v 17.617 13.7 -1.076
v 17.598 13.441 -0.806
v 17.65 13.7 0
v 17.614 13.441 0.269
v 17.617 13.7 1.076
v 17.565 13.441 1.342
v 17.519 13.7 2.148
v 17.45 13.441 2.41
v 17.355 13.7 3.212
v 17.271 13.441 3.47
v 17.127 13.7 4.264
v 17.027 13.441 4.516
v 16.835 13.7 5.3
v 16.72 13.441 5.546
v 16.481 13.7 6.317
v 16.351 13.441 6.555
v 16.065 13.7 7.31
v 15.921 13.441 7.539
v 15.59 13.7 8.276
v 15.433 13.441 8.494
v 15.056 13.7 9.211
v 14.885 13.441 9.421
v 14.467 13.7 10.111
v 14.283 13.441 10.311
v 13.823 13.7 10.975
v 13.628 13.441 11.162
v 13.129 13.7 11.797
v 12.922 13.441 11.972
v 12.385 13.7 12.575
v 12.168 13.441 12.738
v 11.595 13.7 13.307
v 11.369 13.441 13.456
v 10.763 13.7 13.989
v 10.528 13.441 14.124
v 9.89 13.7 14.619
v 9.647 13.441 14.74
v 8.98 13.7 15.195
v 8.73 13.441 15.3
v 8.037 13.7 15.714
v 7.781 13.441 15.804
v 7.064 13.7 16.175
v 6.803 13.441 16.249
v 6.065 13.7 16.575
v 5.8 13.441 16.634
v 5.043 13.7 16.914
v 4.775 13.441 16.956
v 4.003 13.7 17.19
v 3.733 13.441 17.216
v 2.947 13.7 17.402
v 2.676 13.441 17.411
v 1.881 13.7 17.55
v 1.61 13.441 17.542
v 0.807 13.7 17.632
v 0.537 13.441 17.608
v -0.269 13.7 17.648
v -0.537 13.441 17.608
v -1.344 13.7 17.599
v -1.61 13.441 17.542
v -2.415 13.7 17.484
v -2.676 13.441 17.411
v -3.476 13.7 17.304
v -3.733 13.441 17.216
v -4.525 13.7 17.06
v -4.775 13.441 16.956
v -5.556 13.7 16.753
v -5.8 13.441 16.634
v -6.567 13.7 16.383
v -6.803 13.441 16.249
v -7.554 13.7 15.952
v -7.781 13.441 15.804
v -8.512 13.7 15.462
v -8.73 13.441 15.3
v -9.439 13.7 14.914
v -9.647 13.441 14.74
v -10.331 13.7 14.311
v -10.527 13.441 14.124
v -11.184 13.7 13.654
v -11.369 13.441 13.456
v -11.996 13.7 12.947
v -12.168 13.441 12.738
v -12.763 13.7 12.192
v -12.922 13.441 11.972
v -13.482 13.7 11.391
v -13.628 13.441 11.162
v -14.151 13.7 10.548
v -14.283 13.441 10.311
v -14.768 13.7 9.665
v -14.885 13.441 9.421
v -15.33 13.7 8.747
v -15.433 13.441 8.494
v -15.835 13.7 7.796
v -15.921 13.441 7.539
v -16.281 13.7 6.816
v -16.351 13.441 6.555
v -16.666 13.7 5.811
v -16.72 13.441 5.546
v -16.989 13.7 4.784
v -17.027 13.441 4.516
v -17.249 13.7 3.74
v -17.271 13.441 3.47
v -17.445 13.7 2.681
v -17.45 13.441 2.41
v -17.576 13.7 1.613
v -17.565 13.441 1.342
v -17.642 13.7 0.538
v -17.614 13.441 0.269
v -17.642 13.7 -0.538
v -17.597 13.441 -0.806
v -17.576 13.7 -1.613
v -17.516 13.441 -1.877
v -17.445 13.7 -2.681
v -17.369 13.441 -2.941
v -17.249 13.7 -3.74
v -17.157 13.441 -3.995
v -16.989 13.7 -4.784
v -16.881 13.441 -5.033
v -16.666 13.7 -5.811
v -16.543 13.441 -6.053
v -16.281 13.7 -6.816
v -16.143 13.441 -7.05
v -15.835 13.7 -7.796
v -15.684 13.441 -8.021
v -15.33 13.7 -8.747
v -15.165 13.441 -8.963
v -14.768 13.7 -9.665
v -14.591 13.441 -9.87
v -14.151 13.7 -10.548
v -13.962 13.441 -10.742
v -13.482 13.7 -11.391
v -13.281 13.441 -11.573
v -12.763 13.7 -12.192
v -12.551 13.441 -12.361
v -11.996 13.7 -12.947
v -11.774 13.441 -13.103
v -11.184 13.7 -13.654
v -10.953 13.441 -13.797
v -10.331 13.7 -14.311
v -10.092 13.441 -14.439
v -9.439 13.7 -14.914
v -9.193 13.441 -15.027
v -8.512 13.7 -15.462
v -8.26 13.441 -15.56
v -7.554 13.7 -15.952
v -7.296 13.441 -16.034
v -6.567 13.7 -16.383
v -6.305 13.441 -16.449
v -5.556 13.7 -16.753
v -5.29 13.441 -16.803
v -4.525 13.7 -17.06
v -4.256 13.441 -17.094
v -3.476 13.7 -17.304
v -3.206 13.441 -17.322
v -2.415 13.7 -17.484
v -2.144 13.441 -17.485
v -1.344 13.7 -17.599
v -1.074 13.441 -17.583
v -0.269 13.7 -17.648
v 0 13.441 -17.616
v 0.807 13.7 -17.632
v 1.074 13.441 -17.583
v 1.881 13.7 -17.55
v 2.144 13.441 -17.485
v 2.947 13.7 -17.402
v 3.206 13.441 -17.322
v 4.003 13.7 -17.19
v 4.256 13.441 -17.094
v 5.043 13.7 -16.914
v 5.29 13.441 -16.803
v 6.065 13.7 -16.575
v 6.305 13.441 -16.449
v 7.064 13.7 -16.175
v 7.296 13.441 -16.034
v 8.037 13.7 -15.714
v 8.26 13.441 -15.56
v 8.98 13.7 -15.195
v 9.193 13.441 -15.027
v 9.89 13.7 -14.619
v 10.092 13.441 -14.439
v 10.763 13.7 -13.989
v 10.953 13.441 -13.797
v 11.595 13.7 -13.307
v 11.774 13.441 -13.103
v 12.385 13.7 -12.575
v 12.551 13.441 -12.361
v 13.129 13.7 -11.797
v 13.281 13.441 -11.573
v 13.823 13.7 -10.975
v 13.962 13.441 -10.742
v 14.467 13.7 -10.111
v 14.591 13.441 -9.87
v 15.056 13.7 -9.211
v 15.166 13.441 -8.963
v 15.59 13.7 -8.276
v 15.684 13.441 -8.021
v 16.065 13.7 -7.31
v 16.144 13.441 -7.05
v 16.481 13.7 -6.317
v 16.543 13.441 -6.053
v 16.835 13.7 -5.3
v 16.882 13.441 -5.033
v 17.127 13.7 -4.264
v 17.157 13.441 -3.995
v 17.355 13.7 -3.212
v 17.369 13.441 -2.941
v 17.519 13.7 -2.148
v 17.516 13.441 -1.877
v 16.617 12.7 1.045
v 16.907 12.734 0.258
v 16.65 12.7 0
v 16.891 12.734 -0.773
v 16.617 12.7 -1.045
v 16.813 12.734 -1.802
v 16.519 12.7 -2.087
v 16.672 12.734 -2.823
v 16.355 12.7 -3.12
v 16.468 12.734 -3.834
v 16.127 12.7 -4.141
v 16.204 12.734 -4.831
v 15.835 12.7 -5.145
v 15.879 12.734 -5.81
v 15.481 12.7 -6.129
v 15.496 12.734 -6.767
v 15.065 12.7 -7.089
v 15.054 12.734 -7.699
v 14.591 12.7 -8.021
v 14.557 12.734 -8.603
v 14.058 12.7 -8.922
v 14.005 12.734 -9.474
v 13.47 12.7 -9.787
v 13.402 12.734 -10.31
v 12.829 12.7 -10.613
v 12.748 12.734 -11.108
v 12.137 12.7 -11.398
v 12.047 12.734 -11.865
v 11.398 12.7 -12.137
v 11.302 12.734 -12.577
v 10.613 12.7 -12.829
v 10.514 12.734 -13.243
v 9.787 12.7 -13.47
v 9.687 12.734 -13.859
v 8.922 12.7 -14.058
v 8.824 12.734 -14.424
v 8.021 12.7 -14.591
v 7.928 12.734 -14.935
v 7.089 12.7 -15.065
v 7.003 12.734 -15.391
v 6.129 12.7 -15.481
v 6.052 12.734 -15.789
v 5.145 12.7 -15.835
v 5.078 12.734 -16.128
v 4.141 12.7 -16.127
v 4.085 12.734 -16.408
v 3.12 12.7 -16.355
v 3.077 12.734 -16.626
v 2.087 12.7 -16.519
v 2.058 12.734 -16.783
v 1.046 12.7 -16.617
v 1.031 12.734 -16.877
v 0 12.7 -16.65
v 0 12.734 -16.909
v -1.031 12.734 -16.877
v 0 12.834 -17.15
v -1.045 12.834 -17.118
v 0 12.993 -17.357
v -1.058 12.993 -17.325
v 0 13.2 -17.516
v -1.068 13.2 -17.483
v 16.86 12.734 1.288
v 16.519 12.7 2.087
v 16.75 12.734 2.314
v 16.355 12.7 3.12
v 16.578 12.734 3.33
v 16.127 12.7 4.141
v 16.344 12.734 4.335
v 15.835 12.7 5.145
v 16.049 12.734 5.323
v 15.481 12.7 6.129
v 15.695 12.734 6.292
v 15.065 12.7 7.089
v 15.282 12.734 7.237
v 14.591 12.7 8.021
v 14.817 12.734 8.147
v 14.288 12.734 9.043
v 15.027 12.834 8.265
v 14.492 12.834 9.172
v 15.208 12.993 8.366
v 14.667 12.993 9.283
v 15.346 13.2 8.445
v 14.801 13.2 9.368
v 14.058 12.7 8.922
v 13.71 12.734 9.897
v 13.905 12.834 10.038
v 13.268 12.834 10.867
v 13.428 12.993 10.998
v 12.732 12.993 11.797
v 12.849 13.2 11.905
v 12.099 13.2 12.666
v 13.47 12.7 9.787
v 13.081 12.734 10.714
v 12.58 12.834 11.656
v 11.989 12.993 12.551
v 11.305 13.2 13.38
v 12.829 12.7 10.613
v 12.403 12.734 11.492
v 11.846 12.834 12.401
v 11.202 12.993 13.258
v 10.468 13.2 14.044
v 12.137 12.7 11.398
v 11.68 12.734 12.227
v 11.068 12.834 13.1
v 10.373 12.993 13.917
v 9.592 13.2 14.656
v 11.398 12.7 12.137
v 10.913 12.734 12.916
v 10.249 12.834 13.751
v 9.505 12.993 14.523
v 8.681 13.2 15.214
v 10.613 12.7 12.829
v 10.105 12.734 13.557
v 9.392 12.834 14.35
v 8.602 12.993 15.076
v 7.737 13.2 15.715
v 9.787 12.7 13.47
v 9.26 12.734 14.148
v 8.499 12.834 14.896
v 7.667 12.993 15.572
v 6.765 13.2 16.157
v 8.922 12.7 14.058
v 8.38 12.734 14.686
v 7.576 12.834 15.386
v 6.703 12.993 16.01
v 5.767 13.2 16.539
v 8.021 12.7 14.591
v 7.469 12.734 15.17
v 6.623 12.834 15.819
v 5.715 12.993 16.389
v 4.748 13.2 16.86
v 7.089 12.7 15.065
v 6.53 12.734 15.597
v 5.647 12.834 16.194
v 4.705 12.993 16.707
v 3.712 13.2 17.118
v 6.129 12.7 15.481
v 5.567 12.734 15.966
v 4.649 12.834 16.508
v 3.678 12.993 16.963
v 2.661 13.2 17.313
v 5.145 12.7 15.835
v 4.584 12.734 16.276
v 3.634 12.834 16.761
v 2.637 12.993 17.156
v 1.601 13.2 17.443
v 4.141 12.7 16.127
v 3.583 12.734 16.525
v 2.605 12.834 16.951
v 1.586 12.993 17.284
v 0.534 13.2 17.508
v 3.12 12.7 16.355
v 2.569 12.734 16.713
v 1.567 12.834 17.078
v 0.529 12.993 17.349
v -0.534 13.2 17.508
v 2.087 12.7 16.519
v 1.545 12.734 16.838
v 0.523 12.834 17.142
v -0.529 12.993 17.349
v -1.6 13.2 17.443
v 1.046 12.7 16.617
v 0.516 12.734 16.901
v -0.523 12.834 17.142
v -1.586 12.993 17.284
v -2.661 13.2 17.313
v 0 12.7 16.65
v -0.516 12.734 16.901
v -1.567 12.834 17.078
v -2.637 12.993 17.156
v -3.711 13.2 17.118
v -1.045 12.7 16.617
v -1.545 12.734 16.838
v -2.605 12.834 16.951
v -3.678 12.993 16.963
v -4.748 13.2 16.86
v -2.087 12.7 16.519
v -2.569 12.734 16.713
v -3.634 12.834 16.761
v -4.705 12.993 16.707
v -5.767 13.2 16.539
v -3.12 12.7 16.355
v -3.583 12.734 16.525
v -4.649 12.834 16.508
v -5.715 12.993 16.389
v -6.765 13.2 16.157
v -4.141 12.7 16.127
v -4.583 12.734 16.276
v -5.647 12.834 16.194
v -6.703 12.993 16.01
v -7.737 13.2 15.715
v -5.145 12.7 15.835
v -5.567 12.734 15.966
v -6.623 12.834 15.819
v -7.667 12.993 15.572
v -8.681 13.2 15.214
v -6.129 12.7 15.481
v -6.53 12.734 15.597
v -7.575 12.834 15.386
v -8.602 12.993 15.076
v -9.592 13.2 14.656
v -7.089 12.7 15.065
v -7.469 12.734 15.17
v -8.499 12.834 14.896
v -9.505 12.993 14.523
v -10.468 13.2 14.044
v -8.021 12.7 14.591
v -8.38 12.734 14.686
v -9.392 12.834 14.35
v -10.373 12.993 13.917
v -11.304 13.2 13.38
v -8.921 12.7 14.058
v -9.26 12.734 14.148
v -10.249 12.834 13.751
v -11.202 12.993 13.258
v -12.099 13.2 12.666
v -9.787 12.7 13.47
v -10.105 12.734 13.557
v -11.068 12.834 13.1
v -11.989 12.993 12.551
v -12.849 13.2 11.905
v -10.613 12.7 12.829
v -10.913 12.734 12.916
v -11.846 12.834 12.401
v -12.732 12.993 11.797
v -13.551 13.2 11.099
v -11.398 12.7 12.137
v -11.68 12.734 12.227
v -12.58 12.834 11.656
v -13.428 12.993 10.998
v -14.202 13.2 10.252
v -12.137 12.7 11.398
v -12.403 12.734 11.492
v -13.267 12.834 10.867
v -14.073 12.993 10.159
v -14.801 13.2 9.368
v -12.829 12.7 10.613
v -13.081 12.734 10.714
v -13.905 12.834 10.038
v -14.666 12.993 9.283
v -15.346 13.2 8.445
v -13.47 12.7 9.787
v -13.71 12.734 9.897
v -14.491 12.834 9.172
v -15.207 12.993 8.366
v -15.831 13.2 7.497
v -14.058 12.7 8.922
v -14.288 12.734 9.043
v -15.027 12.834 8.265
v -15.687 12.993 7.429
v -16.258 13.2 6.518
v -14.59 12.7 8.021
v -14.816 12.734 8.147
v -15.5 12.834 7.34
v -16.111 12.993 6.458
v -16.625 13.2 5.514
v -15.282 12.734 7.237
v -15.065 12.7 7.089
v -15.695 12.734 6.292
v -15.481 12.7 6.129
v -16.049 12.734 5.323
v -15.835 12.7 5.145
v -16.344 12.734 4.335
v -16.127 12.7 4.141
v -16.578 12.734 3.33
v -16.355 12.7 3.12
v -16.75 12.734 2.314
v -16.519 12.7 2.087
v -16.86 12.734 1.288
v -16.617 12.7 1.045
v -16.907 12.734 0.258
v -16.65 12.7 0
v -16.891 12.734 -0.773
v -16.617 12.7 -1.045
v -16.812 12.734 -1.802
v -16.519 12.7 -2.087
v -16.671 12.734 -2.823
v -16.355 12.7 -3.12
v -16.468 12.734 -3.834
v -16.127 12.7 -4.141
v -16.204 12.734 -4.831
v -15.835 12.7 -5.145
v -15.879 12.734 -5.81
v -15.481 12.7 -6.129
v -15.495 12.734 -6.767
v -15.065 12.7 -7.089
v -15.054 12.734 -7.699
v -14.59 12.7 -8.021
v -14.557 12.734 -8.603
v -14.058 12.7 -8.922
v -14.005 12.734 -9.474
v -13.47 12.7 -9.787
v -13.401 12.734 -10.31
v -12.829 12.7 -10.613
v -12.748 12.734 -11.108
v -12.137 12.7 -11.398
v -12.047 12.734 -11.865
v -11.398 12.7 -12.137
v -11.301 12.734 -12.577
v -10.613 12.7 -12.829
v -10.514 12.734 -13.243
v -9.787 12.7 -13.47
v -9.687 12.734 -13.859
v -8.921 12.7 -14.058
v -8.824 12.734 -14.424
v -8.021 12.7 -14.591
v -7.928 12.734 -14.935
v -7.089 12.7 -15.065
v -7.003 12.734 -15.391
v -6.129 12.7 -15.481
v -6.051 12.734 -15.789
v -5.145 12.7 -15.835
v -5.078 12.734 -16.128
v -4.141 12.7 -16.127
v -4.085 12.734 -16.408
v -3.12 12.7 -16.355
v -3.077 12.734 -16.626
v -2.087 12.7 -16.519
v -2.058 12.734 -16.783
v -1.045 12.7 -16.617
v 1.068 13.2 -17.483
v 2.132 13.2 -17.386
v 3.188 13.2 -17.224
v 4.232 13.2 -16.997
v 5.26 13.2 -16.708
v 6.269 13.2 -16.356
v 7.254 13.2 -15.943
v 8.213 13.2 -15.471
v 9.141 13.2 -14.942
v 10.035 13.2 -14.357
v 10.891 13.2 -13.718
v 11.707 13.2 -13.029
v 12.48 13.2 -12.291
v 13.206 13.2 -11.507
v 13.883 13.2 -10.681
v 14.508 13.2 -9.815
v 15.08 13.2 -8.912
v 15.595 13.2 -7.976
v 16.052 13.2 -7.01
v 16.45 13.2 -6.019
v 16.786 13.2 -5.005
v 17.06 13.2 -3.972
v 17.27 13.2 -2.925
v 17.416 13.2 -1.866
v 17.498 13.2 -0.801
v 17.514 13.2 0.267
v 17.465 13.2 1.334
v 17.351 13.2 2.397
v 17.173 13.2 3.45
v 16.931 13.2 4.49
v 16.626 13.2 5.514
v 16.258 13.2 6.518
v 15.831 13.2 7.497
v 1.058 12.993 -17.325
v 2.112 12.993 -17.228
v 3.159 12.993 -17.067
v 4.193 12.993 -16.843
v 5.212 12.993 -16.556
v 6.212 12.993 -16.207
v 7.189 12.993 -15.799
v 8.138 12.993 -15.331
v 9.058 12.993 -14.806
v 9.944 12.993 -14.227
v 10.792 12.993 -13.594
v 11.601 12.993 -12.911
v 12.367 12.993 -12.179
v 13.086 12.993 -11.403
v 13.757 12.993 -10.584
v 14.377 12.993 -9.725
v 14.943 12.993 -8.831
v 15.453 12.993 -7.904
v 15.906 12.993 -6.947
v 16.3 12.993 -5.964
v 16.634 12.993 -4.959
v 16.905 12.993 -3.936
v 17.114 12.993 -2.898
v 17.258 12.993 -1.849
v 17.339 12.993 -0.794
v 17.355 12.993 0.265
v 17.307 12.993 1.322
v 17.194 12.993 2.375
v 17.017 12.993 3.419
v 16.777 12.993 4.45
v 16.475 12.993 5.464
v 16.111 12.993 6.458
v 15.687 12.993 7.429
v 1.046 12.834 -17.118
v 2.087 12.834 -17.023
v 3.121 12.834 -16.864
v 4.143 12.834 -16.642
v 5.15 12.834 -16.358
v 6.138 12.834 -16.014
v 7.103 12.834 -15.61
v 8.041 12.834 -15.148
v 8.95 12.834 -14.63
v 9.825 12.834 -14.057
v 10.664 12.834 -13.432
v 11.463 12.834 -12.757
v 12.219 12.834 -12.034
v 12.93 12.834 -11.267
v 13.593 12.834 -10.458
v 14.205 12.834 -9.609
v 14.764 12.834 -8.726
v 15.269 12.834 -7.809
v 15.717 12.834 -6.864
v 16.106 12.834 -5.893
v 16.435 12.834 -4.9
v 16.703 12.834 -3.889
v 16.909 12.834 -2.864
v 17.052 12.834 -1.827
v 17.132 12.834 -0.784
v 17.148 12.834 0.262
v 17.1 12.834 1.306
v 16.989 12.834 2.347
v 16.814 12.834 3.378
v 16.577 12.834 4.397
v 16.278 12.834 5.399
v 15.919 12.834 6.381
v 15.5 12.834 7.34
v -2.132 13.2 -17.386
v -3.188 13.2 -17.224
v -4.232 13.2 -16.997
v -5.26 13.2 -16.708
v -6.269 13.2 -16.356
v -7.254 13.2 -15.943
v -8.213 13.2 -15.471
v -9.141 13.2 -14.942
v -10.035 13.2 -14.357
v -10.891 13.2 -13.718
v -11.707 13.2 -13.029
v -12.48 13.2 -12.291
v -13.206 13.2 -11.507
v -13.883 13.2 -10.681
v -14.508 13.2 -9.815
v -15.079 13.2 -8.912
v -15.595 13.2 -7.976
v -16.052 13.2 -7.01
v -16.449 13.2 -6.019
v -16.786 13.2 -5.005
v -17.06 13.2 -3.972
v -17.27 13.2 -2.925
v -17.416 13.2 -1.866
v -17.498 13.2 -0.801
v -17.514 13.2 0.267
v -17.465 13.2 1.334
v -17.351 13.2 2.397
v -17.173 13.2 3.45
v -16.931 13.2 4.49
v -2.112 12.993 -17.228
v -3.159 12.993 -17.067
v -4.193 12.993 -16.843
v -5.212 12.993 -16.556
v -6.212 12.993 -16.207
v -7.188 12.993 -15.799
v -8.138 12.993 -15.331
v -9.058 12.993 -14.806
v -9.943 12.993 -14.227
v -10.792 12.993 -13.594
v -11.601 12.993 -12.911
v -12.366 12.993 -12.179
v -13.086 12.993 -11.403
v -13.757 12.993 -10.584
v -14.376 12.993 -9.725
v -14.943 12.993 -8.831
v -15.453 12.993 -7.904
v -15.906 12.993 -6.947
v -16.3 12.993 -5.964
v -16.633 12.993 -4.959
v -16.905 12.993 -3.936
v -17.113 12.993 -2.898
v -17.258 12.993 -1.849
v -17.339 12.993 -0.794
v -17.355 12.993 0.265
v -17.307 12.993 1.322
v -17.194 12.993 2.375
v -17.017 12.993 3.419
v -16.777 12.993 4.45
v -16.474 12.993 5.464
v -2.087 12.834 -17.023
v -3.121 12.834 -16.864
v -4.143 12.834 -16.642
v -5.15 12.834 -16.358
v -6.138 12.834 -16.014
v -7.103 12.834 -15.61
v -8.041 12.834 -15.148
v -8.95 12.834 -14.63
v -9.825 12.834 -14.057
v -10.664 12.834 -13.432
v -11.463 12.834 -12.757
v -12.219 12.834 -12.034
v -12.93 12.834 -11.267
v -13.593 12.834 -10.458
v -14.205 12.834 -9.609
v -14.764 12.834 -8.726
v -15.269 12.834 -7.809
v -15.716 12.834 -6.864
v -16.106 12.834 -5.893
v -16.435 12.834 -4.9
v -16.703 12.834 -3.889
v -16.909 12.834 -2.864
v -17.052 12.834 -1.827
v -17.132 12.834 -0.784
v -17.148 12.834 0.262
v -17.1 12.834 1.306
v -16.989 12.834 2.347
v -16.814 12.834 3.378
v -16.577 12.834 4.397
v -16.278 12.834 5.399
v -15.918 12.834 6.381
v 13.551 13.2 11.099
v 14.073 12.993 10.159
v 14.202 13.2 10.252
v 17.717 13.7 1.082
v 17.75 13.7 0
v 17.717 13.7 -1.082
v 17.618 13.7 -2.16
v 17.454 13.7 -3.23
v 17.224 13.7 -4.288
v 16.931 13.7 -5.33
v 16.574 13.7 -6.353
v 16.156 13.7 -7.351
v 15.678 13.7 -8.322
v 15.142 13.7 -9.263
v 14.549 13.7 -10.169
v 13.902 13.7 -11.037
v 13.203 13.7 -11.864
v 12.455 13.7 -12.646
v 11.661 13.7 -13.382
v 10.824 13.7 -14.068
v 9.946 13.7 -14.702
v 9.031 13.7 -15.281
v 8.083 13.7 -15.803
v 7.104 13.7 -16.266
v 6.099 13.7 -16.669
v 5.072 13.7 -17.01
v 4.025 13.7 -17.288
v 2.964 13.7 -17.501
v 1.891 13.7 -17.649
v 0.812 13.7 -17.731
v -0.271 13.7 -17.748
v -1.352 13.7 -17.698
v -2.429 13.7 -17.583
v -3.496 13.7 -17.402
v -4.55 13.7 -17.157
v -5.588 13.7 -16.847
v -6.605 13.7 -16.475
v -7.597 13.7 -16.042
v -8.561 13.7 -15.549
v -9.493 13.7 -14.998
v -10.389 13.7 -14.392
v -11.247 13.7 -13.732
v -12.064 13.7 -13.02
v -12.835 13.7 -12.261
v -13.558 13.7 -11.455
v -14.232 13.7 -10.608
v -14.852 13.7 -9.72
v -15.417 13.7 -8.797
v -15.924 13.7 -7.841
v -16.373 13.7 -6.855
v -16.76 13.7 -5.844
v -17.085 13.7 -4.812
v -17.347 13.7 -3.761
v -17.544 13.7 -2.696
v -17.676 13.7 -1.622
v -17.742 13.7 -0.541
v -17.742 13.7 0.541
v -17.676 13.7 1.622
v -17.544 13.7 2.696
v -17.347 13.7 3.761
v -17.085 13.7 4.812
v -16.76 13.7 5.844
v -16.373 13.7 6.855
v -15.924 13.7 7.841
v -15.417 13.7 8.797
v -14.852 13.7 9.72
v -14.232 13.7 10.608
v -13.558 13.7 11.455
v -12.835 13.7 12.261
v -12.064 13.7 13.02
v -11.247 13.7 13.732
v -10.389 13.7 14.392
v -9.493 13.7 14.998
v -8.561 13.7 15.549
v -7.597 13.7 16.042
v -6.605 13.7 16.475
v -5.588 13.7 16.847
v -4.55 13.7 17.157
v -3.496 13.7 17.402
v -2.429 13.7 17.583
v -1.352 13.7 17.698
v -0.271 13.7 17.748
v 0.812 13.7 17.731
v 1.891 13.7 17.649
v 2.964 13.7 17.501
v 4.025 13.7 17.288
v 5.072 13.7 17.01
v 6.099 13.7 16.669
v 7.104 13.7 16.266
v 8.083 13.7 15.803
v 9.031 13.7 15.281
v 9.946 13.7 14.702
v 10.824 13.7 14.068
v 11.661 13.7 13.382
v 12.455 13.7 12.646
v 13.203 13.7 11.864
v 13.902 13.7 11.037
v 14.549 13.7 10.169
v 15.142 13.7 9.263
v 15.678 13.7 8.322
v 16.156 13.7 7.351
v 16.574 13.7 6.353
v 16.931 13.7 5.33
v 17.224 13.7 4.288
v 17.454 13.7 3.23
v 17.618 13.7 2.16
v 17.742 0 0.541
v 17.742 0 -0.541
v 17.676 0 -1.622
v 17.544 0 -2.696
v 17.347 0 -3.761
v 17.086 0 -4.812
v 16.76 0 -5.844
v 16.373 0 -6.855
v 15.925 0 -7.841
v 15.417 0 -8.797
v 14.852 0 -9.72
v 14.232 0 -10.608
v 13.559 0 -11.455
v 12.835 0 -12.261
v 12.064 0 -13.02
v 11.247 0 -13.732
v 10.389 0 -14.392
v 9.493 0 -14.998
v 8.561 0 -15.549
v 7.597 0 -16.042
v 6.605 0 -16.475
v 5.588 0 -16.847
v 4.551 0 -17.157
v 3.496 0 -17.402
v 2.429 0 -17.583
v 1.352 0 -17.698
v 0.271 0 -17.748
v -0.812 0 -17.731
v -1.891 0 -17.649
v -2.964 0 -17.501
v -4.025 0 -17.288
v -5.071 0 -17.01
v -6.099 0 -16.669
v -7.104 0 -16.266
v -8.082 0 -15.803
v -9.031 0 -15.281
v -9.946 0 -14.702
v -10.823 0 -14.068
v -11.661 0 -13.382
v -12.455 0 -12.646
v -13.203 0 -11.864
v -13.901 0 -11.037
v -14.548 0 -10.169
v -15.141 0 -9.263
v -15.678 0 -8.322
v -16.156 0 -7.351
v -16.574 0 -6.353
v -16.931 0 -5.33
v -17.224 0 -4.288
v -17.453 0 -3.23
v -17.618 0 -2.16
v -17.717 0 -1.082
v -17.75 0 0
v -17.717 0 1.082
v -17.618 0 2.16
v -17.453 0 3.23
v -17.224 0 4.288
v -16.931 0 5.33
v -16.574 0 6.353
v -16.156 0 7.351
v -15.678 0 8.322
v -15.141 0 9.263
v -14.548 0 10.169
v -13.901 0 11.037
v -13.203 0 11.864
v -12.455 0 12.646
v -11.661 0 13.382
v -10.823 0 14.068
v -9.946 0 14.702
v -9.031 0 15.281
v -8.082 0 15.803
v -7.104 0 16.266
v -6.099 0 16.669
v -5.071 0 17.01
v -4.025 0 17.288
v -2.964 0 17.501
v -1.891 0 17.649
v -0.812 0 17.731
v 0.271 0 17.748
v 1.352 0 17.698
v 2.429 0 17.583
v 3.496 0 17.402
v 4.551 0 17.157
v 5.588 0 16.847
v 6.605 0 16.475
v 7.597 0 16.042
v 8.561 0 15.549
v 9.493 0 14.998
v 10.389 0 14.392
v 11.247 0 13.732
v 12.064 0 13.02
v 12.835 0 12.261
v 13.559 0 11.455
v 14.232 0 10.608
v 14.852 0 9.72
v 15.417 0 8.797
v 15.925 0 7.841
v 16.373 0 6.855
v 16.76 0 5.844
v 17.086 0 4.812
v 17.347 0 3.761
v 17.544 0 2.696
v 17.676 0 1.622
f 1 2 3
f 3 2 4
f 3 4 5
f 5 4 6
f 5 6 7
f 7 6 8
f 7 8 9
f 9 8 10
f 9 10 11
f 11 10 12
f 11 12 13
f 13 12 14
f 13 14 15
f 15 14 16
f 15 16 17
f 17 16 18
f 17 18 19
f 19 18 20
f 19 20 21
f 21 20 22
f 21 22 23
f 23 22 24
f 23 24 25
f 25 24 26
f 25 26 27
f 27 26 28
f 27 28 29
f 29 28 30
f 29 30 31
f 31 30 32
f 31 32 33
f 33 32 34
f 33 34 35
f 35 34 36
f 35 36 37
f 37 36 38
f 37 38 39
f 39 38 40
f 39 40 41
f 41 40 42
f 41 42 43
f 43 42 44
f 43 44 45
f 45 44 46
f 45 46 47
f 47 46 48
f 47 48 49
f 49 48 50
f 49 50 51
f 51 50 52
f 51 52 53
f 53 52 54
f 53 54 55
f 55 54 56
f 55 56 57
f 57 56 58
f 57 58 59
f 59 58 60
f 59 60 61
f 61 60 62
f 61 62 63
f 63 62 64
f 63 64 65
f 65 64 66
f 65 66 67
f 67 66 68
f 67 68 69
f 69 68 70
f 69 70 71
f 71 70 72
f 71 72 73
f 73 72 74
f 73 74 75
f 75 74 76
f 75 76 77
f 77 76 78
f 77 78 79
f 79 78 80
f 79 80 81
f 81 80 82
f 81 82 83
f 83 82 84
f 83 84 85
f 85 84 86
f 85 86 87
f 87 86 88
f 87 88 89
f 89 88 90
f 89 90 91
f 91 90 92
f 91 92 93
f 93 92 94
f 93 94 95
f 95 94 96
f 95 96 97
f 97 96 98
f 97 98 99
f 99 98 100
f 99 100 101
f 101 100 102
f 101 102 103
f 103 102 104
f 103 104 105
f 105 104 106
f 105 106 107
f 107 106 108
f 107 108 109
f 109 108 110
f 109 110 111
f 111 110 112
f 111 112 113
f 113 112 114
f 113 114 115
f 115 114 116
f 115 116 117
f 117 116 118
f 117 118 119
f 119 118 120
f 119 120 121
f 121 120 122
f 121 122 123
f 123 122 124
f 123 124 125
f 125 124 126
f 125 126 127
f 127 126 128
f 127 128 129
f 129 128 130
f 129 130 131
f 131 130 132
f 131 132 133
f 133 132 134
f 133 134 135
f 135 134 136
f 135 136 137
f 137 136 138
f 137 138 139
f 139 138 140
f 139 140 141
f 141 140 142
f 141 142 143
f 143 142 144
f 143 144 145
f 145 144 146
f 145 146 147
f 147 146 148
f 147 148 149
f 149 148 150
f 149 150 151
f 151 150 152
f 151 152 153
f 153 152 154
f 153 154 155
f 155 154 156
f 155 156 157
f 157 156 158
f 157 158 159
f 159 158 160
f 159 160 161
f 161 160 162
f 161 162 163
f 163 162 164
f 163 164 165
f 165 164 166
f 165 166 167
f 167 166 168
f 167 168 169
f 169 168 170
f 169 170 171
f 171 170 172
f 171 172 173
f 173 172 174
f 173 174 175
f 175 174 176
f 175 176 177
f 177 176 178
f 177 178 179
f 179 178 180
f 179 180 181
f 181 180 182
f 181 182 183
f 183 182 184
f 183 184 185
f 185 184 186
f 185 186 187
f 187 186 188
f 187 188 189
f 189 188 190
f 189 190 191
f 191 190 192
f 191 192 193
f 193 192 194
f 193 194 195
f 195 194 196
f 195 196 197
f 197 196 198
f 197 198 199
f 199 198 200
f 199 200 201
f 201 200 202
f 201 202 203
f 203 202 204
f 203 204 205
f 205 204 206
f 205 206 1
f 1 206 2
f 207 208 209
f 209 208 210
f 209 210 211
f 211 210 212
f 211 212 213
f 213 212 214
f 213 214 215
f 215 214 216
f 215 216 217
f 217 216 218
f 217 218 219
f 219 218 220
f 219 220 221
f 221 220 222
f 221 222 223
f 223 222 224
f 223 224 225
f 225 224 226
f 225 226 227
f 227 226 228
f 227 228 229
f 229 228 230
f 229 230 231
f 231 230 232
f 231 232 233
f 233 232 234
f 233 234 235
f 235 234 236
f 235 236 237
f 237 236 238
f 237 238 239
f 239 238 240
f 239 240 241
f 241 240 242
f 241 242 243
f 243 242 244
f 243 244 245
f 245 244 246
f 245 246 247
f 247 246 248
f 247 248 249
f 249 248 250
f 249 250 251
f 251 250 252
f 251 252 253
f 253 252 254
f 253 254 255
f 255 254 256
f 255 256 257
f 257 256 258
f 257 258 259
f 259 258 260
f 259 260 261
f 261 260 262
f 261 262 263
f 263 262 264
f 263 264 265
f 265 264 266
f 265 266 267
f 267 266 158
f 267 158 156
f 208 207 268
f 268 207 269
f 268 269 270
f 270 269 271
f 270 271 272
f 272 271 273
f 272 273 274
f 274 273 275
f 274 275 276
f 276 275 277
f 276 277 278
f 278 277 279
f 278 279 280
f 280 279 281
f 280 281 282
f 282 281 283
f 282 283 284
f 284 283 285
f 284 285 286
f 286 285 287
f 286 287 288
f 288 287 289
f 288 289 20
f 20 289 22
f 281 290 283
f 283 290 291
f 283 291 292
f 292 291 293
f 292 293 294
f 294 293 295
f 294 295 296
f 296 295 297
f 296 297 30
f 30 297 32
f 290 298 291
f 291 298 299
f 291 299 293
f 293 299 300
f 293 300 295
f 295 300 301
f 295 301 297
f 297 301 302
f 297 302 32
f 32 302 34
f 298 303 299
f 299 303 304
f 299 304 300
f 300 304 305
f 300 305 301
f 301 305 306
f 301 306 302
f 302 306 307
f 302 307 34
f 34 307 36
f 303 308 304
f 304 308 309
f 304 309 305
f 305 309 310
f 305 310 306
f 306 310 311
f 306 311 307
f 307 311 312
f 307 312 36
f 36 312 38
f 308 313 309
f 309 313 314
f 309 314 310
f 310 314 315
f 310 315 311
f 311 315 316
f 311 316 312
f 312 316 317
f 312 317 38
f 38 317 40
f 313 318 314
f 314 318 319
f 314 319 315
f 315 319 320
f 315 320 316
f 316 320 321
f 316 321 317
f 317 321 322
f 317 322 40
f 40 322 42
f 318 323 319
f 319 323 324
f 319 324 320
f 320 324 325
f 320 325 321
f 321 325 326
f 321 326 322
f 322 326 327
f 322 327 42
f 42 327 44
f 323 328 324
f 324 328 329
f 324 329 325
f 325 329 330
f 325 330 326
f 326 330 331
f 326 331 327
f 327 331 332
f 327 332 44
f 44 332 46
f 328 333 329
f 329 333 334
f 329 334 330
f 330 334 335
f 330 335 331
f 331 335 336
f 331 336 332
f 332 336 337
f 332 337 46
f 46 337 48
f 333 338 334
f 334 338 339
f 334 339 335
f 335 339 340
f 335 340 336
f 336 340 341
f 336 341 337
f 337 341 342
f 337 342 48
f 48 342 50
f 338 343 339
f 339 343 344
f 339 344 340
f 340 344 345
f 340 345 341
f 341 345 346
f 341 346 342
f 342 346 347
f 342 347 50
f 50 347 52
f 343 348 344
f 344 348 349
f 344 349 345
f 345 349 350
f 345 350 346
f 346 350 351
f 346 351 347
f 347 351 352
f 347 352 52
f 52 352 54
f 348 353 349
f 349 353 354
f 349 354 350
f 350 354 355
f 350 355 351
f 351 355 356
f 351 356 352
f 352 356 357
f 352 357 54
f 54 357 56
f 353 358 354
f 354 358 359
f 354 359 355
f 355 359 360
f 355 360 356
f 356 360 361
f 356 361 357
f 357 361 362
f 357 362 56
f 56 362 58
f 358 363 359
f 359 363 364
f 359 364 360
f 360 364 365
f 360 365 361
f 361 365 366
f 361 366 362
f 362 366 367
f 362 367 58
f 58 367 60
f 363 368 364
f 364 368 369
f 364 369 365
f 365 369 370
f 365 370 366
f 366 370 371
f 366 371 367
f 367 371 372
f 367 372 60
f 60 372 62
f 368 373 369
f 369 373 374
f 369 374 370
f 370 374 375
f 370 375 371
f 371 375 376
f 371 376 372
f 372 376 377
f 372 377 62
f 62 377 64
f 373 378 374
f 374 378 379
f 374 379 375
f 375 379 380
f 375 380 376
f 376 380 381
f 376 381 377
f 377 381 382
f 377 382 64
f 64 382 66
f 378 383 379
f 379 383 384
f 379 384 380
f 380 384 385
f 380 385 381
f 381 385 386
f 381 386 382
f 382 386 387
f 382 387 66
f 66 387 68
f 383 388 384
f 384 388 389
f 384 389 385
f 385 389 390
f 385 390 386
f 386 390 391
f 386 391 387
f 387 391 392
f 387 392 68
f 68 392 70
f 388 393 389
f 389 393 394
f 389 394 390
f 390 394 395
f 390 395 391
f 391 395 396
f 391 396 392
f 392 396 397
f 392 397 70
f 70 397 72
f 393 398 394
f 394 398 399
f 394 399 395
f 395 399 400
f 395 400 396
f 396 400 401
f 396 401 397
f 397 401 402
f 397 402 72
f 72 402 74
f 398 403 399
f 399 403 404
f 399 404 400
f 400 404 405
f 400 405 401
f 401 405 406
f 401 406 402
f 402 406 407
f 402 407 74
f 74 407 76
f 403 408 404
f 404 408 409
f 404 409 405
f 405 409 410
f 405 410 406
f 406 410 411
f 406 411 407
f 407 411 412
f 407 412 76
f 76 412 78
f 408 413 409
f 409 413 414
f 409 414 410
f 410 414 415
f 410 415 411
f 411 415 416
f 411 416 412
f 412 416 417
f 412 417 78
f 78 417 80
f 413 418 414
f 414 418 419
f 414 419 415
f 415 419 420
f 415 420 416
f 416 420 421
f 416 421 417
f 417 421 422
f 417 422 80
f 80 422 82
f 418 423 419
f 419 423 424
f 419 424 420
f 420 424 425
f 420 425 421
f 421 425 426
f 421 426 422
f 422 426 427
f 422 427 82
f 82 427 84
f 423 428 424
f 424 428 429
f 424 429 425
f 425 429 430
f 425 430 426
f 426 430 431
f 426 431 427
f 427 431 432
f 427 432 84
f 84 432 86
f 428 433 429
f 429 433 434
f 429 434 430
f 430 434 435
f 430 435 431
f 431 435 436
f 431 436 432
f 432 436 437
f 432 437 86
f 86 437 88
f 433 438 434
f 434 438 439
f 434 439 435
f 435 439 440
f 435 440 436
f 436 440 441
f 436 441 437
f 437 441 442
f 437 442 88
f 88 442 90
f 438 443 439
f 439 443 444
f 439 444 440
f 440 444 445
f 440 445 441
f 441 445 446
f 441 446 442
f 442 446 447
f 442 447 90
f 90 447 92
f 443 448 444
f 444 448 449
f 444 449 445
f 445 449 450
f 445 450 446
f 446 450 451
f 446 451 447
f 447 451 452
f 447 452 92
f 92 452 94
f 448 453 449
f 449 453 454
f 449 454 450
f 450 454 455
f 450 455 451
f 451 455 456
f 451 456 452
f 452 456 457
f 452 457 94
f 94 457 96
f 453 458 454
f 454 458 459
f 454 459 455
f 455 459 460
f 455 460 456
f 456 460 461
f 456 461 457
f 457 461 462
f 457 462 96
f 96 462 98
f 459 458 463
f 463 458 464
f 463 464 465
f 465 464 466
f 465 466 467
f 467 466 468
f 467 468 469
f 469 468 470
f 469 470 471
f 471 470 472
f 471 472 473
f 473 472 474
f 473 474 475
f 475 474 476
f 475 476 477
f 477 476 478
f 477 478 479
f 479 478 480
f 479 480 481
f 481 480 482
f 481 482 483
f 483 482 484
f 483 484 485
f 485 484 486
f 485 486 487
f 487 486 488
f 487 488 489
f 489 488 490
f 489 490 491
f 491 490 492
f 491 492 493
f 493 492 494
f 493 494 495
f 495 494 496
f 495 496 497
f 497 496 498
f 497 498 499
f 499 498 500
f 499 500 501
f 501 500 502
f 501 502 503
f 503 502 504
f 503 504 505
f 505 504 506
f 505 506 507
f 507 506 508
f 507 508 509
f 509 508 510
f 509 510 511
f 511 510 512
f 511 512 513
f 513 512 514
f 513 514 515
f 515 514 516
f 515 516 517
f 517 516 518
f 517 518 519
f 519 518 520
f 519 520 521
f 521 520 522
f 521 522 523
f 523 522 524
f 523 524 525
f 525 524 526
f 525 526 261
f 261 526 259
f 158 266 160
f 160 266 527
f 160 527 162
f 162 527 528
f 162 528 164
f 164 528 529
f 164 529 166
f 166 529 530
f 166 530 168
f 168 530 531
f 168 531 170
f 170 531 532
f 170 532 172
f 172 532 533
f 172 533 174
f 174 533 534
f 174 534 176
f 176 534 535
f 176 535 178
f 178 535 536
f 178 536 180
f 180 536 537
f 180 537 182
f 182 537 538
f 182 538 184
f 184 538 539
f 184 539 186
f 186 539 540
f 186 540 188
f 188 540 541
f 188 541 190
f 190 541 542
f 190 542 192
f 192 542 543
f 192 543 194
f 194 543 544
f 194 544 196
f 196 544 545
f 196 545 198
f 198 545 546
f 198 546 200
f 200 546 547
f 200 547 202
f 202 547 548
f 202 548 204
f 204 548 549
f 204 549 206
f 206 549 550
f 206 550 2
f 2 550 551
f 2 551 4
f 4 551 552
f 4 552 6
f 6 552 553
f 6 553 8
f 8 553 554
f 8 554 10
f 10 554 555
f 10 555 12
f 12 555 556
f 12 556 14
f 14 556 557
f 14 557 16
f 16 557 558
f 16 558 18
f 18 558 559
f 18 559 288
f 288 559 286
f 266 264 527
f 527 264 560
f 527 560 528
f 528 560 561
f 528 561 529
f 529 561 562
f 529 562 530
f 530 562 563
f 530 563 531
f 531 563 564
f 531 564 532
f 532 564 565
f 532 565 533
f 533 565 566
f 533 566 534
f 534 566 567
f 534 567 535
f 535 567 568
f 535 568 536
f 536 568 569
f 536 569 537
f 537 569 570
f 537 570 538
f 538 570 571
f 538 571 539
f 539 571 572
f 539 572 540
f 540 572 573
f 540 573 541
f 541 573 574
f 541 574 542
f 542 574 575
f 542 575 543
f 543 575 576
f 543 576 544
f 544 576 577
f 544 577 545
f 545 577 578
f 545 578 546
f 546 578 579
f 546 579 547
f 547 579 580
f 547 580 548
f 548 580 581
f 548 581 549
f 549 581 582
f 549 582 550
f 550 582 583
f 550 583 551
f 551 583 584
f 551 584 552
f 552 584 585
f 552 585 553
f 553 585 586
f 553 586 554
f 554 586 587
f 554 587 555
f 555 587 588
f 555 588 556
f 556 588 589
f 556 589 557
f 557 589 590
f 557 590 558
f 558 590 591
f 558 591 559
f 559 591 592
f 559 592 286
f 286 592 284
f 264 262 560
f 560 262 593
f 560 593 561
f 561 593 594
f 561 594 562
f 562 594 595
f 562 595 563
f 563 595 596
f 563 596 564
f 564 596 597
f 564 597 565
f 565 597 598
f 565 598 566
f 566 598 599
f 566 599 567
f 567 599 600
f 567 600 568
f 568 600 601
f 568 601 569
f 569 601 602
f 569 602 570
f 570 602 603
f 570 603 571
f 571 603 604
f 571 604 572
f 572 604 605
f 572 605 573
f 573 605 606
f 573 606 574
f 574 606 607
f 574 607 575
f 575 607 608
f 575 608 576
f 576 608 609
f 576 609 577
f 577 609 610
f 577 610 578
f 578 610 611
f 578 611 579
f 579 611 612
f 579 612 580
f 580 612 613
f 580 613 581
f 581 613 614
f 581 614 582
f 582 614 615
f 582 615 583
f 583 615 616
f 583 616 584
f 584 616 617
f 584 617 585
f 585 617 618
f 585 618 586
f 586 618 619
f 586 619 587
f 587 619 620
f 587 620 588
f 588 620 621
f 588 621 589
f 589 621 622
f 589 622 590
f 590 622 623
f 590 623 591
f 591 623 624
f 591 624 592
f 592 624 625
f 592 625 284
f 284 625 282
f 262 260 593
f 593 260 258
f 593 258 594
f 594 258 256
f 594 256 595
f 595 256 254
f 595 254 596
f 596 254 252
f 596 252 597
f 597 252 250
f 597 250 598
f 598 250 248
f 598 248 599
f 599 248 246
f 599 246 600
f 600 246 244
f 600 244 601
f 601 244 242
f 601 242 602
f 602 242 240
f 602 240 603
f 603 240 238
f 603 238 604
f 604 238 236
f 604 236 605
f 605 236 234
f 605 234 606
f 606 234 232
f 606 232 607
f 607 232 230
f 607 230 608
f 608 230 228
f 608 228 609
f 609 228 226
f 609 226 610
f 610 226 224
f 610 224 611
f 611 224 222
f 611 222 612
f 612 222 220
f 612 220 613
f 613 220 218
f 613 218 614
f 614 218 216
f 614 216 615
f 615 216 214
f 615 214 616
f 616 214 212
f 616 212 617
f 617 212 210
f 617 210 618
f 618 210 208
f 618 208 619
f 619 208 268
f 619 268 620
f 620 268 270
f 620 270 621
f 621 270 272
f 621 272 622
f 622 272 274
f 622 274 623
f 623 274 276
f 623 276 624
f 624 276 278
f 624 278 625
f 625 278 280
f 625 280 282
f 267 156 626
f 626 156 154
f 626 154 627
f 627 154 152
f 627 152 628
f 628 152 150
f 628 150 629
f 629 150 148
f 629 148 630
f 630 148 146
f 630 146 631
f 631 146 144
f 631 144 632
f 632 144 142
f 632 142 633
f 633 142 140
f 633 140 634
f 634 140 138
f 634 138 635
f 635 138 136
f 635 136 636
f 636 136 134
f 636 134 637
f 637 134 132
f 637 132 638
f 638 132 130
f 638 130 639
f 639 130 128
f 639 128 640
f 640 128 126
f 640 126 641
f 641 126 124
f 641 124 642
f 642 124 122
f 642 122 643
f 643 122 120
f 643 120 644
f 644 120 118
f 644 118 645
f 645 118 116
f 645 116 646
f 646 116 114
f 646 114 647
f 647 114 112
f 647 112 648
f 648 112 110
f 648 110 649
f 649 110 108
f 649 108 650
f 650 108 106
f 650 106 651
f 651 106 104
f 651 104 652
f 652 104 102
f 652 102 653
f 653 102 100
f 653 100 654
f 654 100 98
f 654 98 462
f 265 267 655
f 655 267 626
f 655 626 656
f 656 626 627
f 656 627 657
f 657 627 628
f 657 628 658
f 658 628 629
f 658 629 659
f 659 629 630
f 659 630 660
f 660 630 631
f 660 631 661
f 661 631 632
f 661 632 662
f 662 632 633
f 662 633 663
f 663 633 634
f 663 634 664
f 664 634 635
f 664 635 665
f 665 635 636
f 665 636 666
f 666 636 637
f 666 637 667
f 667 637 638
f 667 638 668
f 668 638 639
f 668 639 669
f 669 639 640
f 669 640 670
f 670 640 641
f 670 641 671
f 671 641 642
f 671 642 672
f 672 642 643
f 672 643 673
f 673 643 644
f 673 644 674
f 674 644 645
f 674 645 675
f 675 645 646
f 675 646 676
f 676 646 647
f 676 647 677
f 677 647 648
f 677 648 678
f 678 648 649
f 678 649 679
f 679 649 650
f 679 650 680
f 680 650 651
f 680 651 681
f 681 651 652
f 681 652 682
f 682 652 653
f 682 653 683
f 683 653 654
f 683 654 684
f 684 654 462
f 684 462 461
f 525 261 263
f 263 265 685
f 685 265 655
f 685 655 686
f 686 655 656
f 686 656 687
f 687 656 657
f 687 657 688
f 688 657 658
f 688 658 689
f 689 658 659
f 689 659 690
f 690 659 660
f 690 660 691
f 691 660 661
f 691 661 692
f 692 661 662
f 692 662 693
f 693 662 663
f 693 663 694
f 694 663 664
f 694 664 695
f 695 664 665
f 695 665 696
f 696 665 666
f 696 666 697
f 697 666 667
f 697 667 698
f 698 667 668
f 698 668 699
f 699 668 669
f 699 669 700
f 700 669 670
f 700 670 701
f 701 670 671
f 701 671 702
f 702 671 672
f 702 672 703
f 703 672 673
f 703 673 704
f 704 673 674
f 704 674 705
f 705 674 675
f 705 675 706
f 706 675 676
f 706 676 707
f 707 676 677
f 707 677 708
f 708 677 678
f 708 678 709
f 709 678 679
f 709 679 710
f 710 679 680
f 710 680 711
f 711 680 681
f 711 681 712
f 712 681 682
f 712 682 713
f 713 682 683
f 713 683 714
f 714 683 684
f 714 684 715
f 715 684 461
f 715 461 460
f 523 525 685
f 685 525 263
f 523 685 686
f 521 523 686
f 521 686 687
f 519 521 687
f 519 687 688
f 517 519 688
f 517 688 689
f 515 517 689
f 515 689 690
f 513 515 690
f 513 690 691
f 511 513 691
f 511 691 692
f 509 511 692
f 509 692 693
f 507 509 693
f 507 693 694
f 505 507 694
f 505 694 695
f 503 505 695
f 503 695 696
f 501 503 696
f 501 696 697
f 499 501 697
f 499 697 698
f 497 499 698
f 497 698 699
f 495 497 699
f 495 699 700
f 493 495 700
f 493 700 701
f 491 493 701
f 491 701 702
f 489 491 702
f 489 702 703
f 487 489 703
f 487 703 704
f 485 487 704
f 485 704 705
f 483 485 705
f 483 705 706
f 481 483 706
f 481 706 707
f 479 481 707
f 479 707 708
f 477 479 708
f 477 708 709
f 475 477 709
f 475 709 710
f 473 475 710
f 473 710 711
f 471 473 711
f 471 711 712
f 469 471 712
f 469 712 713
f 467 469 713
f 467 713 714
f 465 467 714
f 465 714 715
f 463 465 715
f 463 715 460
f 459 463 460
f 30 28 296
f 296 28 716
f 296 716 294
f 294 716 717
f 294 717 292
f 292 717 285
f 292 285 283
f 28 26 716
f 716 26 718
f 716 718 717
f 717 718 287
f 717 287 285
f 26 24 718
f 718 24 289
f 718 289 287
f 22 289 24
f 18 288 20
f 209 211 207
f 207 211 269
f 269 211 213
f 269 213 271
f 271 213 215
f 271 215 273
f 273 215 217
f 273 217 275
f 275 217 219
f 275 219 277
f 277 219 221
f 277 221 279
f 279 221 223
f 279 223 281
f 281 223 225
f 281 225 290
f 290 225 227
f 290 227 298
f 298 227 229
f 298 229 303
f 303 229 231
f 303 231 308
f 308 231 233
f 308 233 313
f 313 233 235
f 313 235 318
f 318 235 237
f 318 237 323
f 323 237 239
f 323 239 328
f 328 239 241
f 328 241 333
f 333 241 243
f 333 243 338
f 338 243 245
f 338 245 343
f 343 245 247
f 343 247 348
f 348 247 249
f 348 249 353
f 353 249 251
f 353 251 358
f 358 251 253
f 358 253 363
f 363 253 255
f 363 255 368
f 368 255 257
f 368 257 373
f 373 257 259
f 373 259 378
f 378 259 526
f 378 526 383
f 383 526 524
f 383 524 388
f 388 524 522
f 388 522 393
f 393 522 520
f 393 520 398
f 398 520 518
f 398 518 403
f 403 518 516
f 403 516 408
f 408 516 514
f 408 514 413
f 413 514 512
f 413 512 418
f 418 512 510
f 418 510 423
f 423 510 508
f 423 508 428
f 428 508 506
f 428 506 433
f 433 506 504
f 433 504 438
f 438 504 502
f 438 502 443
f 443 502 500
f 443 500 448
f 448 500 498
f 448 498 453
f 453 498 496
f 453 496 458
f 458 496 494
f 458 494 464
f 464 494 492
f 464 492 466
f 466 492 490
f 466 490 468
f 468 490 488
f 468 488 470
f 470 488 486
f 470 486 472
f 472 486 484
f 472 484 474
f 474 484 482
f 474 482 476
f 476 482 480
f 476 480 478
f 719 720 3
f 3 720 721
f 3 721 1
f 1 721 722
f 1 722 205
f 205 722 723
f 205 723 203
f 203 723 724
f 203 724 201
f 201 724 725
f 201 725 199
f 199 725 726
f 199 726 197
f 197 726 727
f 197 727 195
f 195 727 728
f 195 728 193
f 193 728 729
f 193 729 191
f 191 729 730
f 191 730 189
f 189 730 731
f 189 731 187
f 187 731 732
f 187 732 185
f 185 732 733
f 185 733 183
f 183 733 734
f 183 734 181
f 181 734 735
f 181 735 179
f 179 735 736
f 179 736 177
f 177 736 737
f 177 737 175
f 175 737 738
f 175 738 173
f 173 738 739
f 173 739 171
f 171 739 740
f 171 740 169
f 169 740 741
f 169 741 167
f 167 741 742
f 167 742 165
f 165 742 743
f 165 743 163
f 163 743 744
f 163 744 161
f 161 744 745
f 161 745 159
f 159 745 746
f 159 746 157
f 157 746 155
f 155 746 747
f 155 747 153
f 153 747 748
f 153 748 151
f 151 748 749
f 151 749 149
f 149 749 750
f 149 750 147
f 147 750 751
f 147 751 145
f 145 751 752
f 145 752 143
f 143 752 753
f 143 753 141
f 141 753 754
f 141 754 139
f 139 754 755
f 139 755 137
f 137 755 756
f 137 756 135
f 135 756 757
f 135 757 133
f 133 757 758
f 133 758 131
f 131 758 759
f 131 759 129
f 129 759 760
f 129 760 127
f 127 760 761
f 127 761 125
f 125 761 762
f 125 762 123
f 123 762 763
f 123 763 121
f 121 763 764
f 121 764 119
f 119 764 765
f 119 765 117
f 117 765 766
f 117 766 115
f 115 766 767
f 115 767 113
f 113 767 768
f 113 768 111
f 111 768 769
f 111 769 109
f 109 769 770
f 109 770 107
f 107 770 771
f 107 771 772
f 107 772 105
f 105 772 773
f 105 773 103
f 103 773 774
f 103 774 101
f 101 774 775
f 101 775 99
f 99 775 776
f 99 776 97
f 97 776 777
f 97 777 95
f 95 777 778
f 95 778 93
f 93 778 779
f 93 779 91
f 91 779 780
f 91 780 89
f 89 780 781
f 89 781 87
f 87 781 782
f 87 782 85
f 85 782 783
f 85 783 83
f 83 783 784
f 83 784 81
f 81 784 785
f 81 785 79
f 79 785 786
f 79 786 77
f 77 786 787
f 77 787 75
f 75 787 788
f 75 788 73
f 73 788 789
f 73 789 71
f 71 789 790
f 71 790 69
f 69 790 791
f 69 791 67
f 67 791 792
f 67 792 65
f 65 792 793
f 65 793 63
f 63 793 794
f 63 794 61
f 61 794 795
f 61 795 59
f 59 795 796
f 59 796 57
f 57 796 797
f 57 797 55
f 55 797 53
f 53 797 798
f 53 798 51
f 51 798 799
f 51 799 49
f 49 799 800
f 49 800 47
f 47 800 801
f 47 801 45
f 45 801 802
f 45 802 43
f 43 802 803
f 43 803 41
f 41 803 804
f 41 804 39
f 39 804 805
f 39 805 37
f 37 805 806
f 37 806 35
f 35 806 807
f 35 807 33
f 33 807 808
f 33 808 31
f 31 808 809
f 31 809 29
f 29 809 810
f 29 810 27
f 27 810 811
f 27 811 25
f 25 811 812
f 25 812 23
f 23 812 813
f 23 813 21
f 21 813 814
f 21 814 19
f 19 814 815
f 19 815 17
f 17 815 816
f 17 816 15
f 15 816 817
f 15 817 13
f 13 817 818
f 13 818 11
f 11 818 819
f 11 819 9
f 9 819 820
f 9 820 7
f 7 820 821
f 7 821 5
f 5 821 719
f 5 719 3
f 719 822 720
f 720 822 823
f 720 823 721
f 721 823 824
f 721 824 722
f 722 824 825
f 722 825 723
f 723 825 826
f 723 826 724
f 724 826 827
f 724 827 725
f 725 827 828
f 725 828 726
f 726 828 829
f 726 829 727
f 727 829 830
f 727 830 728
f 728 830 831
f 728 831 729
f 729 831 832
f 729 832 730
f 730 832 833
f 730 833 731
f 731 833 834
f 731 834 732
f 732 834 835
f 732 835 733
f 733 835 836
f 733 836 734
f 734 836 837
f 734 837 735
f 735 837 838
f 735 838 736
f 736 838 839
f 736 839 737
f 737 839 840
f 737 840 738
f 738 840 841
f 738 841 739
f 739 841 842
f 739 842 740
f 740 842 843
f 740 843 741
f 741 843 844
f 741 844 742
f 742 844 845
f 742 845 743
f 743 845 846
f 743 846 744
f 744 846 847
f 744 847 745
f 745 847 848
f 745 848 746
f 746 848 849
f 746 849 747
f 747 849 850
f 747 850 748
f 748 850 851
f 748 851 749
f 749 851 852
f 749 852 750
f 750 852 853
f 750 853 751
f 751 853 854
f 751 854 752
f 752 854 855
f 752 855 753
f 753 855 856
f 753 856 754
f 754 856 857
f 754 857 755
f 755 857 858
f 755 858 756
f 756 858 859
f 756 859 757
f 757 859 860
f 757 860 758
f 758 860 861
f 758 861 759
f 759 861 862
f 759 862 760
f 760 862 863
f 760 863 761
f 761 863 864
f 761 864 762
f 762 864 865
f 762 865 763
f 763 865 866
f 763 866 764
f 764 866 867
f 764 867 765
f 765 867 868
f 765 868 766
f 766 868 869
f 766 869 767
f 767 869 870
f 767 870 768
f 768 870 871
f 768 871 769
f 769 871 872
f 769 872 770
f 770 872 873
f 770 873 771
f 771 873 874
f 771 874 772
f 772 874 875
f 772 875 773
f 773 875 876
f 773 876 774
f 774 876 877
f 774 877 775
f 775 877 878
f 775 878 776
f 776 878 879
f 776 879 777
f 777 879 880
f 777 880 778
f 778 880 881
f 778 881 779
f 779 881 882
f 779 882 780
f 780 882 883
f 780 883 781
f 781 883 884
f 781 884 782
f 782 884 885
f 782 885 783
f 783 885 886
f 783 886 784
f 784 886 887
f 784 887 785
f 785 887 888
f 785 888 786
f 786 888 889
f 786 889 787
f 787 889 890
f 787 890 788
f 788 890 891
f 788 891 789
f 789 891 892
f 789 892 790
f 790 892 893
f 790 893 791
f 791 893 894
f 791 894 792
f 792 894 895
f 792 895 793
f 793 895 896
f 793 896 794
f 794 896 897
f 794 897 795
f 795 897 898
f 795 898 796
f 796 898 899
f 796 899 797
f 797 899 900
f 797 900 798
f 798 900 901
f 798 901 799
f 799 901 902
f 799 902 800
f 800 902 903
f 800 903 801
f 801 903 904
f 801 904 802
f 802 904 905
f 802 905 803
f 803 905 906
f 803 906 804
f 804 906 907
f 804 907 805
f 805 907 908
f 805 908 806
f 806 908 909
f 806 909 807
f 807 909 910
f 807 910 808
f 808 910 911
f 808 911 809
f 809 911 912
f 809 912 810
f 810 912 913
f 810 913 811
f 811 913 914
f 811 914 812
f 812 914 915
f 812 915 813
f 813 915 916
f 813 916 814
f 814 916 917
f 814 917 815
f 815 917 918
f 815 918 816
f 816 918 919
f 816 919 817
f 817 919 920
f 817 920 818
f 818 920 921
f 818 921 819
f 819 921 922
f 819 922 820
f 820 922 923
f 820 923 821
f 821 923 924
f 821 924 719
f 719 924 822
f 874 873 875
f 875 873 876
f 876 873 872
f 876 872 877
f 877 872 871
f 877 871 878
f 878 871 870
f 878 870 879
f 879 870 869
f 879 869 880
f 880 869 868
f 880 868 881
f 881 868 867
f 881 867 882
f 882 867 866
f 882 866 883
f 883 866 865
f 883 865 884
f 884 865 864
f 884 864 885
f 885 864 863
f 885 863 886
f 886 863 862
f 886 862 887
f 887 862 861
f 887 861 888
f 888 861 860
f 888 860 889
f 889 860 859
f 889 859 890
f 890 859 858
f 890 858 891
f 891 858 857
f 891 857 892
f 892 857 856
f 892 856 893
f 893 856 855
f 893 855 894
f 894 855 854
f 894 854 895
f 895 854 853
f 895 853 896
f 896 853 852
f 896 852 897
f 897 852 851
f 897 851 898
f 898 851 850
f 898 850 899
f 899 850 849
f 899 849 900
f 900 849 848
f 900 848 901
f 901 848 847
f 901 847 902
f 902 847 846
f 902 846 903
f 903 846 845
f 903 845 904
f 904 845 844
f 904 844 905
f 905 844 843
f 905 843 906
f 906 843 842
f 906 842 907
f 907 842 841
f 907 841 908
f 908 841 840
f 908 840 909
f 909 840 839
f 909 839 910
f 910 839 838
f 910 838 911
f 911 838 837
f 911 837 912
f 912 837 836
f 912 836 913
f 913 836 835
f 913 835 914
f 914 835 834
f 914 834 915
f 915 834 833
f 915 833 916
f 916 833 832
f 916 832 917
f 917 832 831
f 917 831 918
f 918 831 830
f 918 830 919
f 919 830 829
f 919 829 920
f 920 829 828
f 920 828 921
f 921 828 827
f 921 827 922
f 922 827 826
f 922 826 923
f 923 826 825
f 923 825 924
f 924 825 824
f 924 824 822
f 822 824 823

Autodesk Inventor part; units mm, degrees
ref_plane "YZ Plane" through (0, 0, 0) normal (1, 0, 0) x (0, 1, 0)
ref_plane "XZ Plane" through (0, 0, 0) normal (0, 1, 0) x (-1, 0, 0)
ref_plane "XY Plane" through (0, 0, 0) normal (0, 0, 1) x (1, 0, 0)
sketch "Sketch3" plane through (0, 0, 0) normal (0, 1, 0) x (-1, 0, 0)
  circle A0 centre (0, 0) radius 17.75
  dimension "d32" = 35.5
extrude "Extrusion4" add sketch "Sketch3" along normal blind 12.7
sketch "Sketch4" plane through (0, 12.7, 0) normal (0, 1, 0) x (1, 0, 0)
  circle A0 centre (0, 0) radius 17.75 projected
  circle A1 centre (0, 0) radius 17.75
  circle A2 centre (0, 0) radius 17.75 projected
  circle A3 centre (0, 0) radius 17.65
  dimension "d35" = 0.1
extrude "Extrusion5" add sketch "Sketch4" along normal blind 1
fillet "Fillet1" radius 1 1 edges at (-17.65, 12.7, 0)
equation "\"d32\" = iciclesPlugD"
equation "\"d33\" = chairThickness"
equation "\"moduleHeight\" = 96"
equation "\"moduleMountD\" = 6.8"
equation "\"moduleCornerR\" = 5"
equation "\"d4\" = moduleCornerR"
equation "\"d5\" = moduleMountD"
equation "\"d6\" = moduleMountD"
equation "\"d8\" = moduleMountD"
equation "\"d10\" = moduleMountD"
equation "\"moduleOpeningR\" = 25"
equation "\"d13\" = moduleOpeningR"
equation "\"thickness\" = 6"
equation "\"d15\" = thickness"
equation "\"d16\" = 0"
equation "\"iciclesMountD\" = 42.5"
equation "\"d17\" = iciclesMountD"
equation "\"clearanceM3\" = 3.6"
equation "\"d18\" = clearanceM3"
equation "\"d21\" = 360deg"
equation "\"d0\" = moduleHeight"
equation "\"iciclesBaseOuterD\" = 48"
equation "\"iciclesPlugD\" = 35.5"
equation "\"chairThickness\" = 12.7"
equation "\"isiclesBaseThickness\" = 3"
properties part number "Module_bottom_Icicles26_v2_3DPrint"
